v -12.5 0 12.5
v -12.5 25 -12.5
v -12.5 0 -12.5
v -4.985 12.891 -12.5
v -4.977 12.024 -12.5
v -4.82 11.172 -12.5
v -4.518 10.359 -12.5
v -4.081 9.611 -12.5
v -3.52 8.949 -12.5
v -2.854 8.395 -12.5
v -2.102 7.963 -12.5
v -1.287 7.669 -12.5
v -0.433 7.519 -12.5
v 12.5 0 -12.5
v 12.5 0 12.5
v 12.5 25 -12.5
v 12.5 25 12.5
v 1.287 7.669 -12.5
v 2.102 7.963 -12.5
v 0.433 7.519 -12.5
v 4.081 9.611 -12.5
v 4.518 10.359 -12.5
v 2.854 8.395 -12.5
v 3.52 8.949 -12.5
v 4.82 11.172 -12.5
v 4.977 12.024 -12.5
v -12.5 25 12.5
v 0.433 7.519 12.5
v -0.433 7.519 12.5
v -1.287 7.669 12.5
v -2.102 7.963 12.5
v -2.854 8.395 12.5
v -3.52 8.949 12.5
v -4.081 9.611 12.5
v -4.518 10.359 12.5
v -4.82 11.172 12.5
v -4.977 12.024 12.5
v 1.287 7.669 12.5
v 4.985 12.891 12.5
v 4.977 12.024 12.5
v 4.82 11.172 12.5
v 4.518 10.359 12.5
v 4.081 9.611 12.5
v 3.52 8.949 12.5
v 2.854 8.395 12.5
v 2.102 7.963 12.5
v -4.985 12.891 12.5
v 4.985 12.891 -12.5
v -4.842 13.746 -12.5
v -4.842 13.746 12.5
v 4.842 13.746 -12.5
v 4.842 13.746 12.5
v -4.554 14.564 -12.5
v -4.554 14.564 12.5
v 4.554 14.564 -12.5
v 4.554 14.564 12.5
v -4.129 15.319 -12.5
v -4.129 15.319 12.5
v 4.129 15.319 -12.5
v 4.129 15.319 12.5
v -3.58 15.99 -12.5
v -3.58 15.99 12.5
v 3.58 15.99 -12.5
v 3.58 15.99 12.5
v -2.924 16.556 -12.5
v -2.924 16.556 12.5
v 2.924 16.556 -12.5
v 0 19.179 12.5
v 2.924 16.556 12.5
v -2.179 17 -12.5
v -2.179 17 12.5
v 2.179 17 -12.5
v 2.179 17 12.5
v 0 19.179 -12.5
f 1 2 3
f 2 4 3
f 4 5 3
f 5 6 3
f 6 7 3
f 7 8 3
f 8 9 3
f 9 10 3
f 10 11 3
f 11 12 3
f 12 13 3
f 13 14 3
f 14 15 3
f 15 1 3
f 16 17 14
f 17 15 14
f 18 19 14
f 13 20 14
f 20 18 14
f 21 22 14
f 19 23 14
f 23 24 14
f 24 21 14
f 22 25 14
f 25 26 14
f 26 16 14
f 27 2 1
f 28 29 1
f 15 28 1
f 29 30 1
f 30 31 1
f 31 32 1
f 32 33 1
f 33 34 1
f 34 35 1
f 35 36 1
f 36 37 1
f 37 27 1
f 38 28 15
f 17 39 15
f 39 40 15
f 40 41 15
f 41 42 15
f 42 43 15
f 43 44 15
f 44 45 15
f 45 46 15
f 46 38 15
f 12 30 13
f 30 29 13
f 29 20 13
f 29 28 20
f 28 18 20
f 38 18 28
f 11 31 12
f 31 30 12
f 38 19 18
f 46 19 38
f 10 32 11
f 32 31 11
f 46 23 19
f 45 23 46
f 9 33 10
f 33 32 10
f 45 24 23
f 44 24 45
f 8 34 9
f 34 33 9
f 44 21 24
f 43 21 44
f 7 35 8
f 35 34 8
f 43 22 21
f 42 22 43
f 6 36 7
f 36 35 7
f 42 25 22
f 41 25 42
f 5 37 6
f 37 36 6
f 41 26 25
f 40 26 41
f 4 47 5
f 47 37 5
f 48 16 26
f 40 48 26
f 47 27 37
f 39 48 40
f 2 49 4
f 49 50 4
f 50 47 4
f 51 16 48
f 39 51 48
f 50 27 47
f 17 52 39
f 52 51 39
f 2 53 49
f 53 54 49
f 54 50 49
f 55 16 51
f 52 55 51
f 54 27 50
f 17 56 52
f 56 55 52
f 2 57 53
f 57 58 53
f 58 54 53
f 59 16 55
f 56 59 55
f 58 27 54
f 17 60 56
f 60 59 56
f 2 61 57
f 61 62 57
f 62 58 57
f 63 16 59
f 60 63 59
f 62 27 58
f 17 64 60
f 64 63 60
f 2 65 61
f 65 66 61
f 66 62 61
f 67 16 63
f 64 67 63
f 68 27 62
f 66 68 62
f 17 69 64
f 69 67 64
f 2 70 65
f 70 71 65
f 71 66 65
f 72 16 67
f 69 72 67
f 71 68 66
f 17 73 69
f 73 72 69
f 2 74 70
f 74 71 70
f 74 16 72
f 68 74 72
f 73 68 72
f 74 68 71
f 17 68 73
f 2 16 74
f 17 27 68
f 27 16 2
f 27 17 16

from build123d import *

# Parameters (mm, degrees)
SKETCH1_W           = 25
SKETCH1_H           = 25
BOSS_EXTRUDE1_DEPTH = 25
CUT_EXTRUDE1_DEPTH  = 26


with BuildPart() as part:
    # Sketch1 → Boss-Extrude1 (new body)
    with BuildSketch(Plane(origin=(0, 0, 0), x_dir=(1, 0, 0), z_dir=(0, 1, 0))):
        Rectangle(SKETCH1_W, SKETCH1_H)
    extrude(amount=BOSS_EXTRUDE1_DEPTH)

    # Sketch2 → Cut-Extrude1 (cut, through all)
    with BuildSketch(Plane.XY.offset(12.5)):
        with BuildLine():
            Line((-2.179449472, 17), (0, 19.179449472))
            Line((0, 19.179449472), (2.179449472, 17))
            ThreePointArc((2.179449472, 17), (0, 7.5), (-2.179449472, 17))
        make_face()
    extrude(amount=-CUT_EXTRUDE1_DEPTH, mode=Mode.SUBTRACT)


solid = part.part
